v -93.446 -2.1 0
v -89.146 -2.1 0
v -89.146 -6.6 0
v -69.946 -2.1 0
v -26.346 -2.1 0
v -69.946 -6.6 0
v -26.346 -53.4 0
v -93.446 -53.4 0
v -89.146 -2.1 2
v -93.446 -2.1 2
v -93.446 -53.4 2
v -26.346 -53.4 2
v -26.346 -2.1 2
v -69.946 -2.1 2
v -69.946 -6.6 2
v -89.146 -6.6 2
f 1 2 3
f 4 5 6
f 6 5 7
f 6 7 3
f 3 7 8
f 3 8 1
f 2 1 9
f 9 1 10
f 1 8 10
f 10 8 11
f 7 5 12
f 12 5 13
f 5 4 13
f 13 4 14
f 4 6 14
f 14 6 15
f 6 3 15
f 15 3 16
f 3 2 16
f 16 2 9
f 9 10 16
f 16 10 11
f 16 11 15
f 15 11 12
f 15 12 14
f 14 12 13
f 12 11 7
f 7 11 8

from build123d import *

# Parameters (mm, degrees)
BOSS_EXTRUDE1_DEPTH = 2
CUT_EXTRUDE1_DEPTH  = 104.743351649
SKETCH4_W           = 67.1
SKETCH4_H           = 9
BOSS_EXTRUDE2_DEPTH = 2


with BuildPart() as part:
    # Sketch2 → Boss-Extrude1 (new body)
    with BuildSketch(Plane.XY):
        Polygon((-88.945731411, -6.4), (-88.945731411, -1.9), (-93.645731411, -1.9), (-93.645731411, -44.6), (-26.145731411, -44.6), (-26.145731411, -1.9), (-70.145731411, -1.9), (-70.145731411, -6.4), align=None)
    extrude(amount=BOSS_EXTRUDE1_DEPTH)

    # Sketch3 → Cut-Extrude1 (cut, through all)
    with BuildSketch(Plane.XY.offset(2)):
        Polygon((-88.945731411, -1.9), (-93.645731411, -1.9), (-93.645731411, -44.6), (-26.145731411, -44.6), (-26.145731411, -1.9), (-70.145731411, -1.9), (-70.145731411, -6.4), (-88.945731411, -6.4), align=None)
        Polygon((-89.145731411, -2.1), (-93.445731411, -2.1), (-93.445731411, -44.4), (-26.345731411, -44.4), (-26.345731411, -2.1), (-69.945731411, -2.1), (-69.945731411, -6.6), (-89.145731411, -6.6), align=None, mode=Mode.SUBTRACT)
    extrude(amount=-CUT_EXTRUDE1_DEPTH, mode=Mode.SUBTRACT)

    # Sketch4 → Boss-Extrude2 (add)
    with BuildSketch(Plane.XY.offset(2)):
        with Locations((-59.895731411, -48.9)):
            Rectangle(SKETCH4_W, SKETCH4_H)
    extrude(amount=-BOSS_EXTRUDE2_DEPTH)


solid = part.part
